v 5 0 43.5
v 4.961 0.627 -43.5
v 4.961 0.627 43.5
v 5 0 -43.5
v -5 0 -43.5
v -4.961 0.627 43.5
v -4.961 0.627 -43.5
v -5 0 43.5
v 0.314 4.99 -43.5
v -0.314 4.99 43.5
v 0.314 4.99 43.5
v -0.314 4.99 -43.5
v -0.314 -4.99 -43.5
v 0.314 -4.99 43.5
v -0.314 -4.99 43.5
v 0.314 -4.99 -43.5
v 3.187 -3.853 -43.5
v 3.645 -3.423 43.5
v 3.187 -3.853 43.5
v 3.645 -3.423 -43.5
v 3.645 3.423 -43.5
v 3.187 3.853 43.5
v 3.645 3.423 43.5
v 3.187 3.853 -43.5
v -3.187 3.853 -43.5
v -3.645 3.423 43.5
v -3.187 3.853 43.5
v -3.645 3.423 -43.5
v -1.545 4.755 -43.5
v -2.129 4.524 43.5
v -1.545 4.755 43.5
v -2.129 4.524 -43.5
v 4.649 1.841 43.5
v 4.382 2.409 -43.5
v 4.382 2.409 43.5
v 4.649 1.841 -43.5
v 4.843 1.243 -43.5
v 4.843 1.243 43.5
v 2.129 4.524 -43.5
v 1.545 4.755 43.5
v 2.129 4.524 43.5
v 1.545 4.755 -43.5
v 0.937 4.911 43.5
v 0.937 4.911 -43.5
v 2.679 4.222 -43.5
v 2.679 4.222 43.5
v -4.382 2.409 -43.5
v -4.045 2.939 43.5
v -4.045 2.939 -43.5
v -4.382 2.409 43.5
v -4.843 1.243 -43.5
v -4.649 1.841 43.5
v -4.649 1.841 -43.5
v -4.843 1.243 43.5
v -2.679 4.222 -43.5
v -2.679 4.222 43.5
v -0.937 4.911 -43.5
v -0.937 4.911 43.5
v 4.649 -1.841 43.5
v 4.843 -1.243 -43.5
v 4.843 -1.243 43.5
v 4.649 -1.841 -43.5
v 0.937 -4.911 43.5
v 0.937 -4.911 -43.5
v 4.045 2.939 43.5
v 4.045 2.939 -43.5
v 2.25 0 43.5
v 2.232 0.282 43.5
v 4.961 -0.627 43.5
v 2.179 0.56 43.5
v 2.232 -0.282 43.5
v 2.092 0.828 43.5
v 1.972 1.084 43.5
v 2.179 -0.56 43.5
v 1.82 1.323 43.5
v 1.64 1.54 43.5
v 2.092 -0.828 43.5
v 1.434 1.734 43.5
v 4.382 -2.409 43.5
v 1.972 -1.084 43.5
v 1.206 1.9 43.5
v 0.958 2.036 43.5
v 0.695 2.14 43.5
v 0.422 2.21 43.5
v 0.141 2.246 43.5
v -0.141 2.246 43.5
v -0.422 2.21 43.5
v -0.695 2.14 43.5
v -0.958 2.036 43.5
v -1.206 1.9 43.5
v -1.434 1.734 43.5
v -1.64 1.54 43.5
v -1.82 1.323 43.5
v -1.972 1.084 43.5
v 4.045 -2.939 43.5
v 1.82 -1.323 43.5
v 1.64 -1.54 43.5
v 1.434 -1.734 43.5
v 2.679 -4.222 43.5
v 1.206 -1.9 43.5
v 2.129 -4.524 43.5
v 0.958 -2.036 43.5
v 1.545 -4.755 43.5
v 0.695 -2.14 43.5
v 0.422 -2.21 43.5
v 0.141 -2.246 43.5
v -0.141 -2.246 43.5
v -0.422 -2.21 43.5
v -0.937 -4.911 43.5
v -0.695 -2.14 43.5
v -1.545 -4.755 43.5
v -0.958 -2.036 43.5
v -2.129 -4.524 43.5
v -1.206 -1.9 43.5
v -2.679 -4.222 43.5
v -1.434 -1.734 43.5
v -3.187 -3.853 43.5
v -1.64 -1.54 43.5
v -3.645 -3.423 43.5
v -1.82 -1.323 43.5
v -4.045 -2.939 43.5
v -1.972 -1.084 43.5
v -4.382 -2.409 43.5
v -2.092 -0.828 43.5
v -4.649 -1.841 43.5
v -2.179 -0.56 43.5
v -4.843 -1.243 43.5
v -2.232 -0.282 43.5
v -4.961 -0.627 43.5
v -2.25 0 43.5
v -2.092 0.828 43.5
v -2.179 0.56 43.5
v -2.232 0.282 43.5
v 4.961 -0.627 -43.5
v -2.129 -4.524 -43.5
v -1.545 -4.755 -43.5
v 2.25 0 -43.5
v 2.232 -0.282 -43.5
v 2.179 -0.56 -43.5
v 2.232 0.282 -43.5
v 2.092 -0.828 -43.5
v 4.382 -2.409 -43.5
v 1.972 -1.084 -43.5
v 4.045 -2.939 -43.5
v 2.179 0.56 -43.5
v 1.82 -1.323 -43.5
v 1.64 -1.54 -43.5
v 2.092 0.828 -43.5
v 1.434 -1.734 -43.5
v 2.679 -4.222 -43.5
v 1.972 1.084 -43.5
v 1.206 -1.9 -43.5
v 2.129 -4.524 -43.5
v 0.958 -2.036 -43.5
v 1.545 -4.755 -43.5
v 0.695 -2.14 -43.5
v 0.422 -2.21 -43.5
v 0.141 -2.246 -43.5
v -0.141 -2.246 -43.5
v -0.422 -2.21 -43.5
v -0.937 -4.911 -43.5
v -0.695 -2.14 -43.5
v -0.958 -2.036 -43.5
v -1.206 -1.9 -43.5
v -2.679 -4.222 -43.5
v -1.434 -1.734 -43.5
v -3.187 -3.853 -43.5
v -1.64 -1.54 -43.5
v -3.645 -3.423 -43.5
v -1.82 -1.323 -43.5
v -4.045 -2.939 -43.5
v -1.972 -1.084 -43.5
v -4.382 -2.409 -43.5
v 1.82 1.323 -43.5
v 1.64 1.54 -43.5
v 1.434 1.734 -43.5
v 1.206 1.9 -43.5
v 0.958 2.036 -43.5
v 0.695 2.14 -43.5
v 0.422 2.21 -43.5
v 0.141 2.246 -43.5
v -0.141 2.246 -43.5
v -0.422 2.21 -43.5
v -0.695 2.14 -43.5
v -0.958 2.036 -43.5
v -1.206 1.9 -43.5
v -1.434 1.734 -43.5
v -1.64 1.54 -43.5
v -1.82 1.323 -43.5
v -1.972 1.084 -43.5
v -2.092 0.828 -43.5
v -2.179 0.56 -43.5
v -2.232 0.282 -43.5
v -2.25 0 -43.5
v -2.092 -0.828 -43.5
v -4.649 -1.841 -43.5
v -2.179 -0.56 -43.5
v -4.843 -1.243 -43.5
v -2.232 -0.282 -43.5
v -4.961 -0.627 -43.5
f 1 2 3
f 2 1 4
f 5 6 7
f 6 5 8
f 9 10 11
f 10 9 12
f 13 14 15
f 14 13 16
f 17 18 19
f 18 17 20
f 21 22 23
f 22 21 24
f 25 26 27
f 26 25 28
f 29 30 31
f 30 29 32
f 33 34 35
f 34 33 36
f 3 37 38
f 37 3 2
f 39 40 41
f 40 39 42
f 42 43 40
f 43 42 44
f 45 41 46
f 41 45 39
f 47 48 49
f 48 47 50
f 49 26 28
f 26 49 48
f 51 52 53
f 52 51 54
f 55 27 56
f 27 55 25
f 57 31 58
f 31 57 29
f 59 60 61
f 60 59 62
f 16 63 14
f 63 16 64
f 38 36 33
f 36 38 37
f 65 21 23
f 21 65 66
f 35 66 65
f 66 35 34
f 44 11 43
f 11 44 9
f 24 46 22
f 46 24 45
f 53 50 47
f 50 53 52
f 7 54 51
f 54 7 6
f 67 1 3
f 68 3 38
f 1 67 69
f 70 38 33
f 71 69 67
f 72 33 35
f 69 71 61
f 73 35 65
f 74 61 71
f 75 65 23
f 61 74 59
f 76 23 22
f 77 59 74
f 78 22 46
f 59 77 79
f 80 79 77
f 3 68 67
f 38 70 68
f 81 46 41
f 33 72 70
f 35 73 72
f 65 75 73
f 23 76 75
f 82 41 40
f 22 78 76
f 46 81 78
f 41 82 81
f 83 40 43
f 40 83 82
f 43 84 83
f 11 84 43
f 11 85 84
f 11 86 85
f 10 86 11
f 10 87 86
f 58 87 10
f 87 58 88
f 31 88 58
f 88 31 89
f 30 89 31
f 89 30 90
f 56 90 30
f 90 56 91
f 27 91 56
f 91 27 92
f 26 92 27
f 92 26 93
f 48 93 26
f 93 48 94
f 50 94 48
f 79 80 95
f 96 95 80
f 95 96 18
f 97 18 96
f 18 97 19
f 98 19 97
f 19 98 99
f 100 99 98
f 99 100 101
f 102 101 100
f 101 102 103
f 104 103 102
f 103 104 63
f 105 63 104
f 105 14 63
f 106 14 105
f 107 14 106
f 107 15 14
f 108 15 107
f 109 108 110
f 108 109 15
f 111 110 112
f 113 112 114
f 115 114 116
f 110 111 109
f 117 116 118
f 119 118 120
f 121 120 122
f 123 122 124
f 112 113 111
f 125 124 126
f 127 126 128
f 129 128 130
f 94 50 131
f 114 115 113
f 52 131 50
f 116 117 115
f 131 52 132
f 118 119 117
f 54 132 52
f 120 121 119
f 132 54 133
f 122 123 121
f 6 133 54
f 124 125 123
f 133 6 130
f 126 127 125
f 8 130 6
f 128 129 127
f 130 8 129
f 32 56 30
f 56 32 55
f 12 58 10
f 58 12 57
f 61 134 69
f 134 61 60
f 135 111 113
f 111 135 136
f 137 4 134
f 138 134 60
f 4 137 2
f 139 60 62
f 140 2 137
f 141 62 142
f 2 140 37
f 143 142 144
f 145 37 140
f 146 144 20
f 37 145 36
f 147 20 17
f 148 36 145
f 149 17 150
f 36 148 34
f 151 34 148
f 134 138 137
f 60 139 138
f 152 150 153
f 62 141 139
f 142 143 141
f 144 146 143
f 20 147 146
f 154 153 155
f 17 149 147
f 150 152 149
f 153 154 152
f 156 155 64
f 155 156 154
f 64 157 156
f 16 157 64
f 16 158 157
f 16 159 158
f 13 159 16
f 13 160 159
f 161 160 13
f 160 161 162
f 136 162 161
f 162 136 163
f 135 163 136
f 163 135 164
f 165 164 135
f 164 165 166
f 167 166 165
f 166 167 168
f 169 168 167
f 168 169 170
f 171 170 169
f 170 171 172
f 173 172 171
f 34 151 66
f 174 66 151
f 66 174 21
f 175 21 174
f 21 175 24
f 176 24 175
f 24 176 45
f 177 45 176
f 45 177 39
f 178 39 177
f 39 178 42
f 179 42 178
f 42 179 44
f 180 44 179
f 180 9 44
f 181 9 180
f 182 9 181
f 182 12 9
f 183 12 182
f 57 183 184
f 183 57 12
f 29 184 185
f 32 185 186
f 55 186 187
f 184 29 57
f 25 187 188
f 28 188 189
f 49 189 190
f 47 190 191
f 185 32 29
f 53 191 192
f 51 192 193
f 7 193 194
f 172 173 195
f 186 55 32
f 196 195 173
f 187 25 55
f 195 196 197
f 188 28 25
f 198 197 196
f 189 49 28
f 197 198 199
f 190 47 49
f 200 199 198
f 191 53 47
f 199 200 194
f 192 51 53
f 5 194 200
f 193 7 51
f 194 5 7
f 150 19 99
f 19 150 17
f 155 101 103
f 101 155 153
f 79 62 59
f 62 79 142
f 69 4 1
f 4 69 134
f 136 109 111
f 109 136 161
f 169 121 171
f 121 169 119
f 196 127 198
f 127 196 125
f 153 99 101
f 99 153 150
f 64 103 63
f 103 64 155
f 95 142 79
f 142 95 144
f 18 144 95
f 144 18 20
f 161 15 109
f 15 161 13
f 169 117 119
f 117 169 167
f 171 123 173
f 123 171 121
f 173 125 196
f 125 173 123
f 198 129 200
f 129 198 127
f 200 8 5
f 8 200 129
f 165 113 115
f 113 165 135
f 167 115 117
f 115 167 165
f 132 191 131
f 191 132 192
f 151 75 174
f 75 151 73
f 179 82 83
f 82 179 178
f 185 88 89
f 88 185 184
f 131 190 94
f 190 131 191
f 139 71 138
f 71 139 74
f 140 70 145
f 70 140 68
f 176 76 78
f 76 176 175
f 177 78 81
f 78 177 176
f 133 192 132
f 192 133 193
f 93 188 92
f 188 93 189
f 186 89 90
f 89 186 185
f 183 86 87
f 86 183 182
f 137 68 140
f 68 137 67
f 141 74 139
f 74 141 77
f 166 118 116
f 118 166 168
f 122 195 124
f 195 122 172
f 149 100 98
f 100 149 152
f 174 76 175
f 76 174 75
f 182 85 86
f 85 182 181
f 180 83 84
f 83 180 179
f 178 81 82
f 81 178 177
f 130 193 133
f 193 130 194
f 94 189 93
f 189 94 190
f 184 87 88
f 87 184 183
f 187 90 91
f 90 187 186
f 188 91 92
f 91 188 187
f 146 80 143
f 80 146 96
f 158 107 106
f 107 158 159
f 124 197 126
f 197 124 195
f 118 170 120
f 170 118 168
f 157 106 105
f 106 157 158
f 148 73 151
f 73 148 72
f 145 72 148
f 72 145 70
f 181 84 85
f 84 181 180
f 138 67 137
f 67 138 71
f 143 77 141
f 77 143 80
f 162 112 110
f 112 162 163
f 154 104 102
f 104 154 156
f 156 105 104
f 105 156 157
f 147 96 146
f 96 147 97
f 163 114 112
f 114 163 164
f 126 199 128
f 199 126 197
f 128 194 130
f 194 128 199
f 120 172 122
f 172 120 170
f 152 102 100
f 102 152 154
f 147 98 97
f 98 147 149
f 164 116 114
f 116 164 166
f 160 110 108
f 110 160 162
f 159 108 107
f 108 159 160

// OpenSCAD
$fn = 50;


difference() {
	union() {
		translate(v = [0, 0, -43.5000000000]) {
			cylinder(h = 87, r = 5.0000000000);
		}
	}
	union() {
		translate(v = [0, 0, -100.0000000000]) {
			cylinder(h = 200, r = 2.2500000000);
		}
	}
}
